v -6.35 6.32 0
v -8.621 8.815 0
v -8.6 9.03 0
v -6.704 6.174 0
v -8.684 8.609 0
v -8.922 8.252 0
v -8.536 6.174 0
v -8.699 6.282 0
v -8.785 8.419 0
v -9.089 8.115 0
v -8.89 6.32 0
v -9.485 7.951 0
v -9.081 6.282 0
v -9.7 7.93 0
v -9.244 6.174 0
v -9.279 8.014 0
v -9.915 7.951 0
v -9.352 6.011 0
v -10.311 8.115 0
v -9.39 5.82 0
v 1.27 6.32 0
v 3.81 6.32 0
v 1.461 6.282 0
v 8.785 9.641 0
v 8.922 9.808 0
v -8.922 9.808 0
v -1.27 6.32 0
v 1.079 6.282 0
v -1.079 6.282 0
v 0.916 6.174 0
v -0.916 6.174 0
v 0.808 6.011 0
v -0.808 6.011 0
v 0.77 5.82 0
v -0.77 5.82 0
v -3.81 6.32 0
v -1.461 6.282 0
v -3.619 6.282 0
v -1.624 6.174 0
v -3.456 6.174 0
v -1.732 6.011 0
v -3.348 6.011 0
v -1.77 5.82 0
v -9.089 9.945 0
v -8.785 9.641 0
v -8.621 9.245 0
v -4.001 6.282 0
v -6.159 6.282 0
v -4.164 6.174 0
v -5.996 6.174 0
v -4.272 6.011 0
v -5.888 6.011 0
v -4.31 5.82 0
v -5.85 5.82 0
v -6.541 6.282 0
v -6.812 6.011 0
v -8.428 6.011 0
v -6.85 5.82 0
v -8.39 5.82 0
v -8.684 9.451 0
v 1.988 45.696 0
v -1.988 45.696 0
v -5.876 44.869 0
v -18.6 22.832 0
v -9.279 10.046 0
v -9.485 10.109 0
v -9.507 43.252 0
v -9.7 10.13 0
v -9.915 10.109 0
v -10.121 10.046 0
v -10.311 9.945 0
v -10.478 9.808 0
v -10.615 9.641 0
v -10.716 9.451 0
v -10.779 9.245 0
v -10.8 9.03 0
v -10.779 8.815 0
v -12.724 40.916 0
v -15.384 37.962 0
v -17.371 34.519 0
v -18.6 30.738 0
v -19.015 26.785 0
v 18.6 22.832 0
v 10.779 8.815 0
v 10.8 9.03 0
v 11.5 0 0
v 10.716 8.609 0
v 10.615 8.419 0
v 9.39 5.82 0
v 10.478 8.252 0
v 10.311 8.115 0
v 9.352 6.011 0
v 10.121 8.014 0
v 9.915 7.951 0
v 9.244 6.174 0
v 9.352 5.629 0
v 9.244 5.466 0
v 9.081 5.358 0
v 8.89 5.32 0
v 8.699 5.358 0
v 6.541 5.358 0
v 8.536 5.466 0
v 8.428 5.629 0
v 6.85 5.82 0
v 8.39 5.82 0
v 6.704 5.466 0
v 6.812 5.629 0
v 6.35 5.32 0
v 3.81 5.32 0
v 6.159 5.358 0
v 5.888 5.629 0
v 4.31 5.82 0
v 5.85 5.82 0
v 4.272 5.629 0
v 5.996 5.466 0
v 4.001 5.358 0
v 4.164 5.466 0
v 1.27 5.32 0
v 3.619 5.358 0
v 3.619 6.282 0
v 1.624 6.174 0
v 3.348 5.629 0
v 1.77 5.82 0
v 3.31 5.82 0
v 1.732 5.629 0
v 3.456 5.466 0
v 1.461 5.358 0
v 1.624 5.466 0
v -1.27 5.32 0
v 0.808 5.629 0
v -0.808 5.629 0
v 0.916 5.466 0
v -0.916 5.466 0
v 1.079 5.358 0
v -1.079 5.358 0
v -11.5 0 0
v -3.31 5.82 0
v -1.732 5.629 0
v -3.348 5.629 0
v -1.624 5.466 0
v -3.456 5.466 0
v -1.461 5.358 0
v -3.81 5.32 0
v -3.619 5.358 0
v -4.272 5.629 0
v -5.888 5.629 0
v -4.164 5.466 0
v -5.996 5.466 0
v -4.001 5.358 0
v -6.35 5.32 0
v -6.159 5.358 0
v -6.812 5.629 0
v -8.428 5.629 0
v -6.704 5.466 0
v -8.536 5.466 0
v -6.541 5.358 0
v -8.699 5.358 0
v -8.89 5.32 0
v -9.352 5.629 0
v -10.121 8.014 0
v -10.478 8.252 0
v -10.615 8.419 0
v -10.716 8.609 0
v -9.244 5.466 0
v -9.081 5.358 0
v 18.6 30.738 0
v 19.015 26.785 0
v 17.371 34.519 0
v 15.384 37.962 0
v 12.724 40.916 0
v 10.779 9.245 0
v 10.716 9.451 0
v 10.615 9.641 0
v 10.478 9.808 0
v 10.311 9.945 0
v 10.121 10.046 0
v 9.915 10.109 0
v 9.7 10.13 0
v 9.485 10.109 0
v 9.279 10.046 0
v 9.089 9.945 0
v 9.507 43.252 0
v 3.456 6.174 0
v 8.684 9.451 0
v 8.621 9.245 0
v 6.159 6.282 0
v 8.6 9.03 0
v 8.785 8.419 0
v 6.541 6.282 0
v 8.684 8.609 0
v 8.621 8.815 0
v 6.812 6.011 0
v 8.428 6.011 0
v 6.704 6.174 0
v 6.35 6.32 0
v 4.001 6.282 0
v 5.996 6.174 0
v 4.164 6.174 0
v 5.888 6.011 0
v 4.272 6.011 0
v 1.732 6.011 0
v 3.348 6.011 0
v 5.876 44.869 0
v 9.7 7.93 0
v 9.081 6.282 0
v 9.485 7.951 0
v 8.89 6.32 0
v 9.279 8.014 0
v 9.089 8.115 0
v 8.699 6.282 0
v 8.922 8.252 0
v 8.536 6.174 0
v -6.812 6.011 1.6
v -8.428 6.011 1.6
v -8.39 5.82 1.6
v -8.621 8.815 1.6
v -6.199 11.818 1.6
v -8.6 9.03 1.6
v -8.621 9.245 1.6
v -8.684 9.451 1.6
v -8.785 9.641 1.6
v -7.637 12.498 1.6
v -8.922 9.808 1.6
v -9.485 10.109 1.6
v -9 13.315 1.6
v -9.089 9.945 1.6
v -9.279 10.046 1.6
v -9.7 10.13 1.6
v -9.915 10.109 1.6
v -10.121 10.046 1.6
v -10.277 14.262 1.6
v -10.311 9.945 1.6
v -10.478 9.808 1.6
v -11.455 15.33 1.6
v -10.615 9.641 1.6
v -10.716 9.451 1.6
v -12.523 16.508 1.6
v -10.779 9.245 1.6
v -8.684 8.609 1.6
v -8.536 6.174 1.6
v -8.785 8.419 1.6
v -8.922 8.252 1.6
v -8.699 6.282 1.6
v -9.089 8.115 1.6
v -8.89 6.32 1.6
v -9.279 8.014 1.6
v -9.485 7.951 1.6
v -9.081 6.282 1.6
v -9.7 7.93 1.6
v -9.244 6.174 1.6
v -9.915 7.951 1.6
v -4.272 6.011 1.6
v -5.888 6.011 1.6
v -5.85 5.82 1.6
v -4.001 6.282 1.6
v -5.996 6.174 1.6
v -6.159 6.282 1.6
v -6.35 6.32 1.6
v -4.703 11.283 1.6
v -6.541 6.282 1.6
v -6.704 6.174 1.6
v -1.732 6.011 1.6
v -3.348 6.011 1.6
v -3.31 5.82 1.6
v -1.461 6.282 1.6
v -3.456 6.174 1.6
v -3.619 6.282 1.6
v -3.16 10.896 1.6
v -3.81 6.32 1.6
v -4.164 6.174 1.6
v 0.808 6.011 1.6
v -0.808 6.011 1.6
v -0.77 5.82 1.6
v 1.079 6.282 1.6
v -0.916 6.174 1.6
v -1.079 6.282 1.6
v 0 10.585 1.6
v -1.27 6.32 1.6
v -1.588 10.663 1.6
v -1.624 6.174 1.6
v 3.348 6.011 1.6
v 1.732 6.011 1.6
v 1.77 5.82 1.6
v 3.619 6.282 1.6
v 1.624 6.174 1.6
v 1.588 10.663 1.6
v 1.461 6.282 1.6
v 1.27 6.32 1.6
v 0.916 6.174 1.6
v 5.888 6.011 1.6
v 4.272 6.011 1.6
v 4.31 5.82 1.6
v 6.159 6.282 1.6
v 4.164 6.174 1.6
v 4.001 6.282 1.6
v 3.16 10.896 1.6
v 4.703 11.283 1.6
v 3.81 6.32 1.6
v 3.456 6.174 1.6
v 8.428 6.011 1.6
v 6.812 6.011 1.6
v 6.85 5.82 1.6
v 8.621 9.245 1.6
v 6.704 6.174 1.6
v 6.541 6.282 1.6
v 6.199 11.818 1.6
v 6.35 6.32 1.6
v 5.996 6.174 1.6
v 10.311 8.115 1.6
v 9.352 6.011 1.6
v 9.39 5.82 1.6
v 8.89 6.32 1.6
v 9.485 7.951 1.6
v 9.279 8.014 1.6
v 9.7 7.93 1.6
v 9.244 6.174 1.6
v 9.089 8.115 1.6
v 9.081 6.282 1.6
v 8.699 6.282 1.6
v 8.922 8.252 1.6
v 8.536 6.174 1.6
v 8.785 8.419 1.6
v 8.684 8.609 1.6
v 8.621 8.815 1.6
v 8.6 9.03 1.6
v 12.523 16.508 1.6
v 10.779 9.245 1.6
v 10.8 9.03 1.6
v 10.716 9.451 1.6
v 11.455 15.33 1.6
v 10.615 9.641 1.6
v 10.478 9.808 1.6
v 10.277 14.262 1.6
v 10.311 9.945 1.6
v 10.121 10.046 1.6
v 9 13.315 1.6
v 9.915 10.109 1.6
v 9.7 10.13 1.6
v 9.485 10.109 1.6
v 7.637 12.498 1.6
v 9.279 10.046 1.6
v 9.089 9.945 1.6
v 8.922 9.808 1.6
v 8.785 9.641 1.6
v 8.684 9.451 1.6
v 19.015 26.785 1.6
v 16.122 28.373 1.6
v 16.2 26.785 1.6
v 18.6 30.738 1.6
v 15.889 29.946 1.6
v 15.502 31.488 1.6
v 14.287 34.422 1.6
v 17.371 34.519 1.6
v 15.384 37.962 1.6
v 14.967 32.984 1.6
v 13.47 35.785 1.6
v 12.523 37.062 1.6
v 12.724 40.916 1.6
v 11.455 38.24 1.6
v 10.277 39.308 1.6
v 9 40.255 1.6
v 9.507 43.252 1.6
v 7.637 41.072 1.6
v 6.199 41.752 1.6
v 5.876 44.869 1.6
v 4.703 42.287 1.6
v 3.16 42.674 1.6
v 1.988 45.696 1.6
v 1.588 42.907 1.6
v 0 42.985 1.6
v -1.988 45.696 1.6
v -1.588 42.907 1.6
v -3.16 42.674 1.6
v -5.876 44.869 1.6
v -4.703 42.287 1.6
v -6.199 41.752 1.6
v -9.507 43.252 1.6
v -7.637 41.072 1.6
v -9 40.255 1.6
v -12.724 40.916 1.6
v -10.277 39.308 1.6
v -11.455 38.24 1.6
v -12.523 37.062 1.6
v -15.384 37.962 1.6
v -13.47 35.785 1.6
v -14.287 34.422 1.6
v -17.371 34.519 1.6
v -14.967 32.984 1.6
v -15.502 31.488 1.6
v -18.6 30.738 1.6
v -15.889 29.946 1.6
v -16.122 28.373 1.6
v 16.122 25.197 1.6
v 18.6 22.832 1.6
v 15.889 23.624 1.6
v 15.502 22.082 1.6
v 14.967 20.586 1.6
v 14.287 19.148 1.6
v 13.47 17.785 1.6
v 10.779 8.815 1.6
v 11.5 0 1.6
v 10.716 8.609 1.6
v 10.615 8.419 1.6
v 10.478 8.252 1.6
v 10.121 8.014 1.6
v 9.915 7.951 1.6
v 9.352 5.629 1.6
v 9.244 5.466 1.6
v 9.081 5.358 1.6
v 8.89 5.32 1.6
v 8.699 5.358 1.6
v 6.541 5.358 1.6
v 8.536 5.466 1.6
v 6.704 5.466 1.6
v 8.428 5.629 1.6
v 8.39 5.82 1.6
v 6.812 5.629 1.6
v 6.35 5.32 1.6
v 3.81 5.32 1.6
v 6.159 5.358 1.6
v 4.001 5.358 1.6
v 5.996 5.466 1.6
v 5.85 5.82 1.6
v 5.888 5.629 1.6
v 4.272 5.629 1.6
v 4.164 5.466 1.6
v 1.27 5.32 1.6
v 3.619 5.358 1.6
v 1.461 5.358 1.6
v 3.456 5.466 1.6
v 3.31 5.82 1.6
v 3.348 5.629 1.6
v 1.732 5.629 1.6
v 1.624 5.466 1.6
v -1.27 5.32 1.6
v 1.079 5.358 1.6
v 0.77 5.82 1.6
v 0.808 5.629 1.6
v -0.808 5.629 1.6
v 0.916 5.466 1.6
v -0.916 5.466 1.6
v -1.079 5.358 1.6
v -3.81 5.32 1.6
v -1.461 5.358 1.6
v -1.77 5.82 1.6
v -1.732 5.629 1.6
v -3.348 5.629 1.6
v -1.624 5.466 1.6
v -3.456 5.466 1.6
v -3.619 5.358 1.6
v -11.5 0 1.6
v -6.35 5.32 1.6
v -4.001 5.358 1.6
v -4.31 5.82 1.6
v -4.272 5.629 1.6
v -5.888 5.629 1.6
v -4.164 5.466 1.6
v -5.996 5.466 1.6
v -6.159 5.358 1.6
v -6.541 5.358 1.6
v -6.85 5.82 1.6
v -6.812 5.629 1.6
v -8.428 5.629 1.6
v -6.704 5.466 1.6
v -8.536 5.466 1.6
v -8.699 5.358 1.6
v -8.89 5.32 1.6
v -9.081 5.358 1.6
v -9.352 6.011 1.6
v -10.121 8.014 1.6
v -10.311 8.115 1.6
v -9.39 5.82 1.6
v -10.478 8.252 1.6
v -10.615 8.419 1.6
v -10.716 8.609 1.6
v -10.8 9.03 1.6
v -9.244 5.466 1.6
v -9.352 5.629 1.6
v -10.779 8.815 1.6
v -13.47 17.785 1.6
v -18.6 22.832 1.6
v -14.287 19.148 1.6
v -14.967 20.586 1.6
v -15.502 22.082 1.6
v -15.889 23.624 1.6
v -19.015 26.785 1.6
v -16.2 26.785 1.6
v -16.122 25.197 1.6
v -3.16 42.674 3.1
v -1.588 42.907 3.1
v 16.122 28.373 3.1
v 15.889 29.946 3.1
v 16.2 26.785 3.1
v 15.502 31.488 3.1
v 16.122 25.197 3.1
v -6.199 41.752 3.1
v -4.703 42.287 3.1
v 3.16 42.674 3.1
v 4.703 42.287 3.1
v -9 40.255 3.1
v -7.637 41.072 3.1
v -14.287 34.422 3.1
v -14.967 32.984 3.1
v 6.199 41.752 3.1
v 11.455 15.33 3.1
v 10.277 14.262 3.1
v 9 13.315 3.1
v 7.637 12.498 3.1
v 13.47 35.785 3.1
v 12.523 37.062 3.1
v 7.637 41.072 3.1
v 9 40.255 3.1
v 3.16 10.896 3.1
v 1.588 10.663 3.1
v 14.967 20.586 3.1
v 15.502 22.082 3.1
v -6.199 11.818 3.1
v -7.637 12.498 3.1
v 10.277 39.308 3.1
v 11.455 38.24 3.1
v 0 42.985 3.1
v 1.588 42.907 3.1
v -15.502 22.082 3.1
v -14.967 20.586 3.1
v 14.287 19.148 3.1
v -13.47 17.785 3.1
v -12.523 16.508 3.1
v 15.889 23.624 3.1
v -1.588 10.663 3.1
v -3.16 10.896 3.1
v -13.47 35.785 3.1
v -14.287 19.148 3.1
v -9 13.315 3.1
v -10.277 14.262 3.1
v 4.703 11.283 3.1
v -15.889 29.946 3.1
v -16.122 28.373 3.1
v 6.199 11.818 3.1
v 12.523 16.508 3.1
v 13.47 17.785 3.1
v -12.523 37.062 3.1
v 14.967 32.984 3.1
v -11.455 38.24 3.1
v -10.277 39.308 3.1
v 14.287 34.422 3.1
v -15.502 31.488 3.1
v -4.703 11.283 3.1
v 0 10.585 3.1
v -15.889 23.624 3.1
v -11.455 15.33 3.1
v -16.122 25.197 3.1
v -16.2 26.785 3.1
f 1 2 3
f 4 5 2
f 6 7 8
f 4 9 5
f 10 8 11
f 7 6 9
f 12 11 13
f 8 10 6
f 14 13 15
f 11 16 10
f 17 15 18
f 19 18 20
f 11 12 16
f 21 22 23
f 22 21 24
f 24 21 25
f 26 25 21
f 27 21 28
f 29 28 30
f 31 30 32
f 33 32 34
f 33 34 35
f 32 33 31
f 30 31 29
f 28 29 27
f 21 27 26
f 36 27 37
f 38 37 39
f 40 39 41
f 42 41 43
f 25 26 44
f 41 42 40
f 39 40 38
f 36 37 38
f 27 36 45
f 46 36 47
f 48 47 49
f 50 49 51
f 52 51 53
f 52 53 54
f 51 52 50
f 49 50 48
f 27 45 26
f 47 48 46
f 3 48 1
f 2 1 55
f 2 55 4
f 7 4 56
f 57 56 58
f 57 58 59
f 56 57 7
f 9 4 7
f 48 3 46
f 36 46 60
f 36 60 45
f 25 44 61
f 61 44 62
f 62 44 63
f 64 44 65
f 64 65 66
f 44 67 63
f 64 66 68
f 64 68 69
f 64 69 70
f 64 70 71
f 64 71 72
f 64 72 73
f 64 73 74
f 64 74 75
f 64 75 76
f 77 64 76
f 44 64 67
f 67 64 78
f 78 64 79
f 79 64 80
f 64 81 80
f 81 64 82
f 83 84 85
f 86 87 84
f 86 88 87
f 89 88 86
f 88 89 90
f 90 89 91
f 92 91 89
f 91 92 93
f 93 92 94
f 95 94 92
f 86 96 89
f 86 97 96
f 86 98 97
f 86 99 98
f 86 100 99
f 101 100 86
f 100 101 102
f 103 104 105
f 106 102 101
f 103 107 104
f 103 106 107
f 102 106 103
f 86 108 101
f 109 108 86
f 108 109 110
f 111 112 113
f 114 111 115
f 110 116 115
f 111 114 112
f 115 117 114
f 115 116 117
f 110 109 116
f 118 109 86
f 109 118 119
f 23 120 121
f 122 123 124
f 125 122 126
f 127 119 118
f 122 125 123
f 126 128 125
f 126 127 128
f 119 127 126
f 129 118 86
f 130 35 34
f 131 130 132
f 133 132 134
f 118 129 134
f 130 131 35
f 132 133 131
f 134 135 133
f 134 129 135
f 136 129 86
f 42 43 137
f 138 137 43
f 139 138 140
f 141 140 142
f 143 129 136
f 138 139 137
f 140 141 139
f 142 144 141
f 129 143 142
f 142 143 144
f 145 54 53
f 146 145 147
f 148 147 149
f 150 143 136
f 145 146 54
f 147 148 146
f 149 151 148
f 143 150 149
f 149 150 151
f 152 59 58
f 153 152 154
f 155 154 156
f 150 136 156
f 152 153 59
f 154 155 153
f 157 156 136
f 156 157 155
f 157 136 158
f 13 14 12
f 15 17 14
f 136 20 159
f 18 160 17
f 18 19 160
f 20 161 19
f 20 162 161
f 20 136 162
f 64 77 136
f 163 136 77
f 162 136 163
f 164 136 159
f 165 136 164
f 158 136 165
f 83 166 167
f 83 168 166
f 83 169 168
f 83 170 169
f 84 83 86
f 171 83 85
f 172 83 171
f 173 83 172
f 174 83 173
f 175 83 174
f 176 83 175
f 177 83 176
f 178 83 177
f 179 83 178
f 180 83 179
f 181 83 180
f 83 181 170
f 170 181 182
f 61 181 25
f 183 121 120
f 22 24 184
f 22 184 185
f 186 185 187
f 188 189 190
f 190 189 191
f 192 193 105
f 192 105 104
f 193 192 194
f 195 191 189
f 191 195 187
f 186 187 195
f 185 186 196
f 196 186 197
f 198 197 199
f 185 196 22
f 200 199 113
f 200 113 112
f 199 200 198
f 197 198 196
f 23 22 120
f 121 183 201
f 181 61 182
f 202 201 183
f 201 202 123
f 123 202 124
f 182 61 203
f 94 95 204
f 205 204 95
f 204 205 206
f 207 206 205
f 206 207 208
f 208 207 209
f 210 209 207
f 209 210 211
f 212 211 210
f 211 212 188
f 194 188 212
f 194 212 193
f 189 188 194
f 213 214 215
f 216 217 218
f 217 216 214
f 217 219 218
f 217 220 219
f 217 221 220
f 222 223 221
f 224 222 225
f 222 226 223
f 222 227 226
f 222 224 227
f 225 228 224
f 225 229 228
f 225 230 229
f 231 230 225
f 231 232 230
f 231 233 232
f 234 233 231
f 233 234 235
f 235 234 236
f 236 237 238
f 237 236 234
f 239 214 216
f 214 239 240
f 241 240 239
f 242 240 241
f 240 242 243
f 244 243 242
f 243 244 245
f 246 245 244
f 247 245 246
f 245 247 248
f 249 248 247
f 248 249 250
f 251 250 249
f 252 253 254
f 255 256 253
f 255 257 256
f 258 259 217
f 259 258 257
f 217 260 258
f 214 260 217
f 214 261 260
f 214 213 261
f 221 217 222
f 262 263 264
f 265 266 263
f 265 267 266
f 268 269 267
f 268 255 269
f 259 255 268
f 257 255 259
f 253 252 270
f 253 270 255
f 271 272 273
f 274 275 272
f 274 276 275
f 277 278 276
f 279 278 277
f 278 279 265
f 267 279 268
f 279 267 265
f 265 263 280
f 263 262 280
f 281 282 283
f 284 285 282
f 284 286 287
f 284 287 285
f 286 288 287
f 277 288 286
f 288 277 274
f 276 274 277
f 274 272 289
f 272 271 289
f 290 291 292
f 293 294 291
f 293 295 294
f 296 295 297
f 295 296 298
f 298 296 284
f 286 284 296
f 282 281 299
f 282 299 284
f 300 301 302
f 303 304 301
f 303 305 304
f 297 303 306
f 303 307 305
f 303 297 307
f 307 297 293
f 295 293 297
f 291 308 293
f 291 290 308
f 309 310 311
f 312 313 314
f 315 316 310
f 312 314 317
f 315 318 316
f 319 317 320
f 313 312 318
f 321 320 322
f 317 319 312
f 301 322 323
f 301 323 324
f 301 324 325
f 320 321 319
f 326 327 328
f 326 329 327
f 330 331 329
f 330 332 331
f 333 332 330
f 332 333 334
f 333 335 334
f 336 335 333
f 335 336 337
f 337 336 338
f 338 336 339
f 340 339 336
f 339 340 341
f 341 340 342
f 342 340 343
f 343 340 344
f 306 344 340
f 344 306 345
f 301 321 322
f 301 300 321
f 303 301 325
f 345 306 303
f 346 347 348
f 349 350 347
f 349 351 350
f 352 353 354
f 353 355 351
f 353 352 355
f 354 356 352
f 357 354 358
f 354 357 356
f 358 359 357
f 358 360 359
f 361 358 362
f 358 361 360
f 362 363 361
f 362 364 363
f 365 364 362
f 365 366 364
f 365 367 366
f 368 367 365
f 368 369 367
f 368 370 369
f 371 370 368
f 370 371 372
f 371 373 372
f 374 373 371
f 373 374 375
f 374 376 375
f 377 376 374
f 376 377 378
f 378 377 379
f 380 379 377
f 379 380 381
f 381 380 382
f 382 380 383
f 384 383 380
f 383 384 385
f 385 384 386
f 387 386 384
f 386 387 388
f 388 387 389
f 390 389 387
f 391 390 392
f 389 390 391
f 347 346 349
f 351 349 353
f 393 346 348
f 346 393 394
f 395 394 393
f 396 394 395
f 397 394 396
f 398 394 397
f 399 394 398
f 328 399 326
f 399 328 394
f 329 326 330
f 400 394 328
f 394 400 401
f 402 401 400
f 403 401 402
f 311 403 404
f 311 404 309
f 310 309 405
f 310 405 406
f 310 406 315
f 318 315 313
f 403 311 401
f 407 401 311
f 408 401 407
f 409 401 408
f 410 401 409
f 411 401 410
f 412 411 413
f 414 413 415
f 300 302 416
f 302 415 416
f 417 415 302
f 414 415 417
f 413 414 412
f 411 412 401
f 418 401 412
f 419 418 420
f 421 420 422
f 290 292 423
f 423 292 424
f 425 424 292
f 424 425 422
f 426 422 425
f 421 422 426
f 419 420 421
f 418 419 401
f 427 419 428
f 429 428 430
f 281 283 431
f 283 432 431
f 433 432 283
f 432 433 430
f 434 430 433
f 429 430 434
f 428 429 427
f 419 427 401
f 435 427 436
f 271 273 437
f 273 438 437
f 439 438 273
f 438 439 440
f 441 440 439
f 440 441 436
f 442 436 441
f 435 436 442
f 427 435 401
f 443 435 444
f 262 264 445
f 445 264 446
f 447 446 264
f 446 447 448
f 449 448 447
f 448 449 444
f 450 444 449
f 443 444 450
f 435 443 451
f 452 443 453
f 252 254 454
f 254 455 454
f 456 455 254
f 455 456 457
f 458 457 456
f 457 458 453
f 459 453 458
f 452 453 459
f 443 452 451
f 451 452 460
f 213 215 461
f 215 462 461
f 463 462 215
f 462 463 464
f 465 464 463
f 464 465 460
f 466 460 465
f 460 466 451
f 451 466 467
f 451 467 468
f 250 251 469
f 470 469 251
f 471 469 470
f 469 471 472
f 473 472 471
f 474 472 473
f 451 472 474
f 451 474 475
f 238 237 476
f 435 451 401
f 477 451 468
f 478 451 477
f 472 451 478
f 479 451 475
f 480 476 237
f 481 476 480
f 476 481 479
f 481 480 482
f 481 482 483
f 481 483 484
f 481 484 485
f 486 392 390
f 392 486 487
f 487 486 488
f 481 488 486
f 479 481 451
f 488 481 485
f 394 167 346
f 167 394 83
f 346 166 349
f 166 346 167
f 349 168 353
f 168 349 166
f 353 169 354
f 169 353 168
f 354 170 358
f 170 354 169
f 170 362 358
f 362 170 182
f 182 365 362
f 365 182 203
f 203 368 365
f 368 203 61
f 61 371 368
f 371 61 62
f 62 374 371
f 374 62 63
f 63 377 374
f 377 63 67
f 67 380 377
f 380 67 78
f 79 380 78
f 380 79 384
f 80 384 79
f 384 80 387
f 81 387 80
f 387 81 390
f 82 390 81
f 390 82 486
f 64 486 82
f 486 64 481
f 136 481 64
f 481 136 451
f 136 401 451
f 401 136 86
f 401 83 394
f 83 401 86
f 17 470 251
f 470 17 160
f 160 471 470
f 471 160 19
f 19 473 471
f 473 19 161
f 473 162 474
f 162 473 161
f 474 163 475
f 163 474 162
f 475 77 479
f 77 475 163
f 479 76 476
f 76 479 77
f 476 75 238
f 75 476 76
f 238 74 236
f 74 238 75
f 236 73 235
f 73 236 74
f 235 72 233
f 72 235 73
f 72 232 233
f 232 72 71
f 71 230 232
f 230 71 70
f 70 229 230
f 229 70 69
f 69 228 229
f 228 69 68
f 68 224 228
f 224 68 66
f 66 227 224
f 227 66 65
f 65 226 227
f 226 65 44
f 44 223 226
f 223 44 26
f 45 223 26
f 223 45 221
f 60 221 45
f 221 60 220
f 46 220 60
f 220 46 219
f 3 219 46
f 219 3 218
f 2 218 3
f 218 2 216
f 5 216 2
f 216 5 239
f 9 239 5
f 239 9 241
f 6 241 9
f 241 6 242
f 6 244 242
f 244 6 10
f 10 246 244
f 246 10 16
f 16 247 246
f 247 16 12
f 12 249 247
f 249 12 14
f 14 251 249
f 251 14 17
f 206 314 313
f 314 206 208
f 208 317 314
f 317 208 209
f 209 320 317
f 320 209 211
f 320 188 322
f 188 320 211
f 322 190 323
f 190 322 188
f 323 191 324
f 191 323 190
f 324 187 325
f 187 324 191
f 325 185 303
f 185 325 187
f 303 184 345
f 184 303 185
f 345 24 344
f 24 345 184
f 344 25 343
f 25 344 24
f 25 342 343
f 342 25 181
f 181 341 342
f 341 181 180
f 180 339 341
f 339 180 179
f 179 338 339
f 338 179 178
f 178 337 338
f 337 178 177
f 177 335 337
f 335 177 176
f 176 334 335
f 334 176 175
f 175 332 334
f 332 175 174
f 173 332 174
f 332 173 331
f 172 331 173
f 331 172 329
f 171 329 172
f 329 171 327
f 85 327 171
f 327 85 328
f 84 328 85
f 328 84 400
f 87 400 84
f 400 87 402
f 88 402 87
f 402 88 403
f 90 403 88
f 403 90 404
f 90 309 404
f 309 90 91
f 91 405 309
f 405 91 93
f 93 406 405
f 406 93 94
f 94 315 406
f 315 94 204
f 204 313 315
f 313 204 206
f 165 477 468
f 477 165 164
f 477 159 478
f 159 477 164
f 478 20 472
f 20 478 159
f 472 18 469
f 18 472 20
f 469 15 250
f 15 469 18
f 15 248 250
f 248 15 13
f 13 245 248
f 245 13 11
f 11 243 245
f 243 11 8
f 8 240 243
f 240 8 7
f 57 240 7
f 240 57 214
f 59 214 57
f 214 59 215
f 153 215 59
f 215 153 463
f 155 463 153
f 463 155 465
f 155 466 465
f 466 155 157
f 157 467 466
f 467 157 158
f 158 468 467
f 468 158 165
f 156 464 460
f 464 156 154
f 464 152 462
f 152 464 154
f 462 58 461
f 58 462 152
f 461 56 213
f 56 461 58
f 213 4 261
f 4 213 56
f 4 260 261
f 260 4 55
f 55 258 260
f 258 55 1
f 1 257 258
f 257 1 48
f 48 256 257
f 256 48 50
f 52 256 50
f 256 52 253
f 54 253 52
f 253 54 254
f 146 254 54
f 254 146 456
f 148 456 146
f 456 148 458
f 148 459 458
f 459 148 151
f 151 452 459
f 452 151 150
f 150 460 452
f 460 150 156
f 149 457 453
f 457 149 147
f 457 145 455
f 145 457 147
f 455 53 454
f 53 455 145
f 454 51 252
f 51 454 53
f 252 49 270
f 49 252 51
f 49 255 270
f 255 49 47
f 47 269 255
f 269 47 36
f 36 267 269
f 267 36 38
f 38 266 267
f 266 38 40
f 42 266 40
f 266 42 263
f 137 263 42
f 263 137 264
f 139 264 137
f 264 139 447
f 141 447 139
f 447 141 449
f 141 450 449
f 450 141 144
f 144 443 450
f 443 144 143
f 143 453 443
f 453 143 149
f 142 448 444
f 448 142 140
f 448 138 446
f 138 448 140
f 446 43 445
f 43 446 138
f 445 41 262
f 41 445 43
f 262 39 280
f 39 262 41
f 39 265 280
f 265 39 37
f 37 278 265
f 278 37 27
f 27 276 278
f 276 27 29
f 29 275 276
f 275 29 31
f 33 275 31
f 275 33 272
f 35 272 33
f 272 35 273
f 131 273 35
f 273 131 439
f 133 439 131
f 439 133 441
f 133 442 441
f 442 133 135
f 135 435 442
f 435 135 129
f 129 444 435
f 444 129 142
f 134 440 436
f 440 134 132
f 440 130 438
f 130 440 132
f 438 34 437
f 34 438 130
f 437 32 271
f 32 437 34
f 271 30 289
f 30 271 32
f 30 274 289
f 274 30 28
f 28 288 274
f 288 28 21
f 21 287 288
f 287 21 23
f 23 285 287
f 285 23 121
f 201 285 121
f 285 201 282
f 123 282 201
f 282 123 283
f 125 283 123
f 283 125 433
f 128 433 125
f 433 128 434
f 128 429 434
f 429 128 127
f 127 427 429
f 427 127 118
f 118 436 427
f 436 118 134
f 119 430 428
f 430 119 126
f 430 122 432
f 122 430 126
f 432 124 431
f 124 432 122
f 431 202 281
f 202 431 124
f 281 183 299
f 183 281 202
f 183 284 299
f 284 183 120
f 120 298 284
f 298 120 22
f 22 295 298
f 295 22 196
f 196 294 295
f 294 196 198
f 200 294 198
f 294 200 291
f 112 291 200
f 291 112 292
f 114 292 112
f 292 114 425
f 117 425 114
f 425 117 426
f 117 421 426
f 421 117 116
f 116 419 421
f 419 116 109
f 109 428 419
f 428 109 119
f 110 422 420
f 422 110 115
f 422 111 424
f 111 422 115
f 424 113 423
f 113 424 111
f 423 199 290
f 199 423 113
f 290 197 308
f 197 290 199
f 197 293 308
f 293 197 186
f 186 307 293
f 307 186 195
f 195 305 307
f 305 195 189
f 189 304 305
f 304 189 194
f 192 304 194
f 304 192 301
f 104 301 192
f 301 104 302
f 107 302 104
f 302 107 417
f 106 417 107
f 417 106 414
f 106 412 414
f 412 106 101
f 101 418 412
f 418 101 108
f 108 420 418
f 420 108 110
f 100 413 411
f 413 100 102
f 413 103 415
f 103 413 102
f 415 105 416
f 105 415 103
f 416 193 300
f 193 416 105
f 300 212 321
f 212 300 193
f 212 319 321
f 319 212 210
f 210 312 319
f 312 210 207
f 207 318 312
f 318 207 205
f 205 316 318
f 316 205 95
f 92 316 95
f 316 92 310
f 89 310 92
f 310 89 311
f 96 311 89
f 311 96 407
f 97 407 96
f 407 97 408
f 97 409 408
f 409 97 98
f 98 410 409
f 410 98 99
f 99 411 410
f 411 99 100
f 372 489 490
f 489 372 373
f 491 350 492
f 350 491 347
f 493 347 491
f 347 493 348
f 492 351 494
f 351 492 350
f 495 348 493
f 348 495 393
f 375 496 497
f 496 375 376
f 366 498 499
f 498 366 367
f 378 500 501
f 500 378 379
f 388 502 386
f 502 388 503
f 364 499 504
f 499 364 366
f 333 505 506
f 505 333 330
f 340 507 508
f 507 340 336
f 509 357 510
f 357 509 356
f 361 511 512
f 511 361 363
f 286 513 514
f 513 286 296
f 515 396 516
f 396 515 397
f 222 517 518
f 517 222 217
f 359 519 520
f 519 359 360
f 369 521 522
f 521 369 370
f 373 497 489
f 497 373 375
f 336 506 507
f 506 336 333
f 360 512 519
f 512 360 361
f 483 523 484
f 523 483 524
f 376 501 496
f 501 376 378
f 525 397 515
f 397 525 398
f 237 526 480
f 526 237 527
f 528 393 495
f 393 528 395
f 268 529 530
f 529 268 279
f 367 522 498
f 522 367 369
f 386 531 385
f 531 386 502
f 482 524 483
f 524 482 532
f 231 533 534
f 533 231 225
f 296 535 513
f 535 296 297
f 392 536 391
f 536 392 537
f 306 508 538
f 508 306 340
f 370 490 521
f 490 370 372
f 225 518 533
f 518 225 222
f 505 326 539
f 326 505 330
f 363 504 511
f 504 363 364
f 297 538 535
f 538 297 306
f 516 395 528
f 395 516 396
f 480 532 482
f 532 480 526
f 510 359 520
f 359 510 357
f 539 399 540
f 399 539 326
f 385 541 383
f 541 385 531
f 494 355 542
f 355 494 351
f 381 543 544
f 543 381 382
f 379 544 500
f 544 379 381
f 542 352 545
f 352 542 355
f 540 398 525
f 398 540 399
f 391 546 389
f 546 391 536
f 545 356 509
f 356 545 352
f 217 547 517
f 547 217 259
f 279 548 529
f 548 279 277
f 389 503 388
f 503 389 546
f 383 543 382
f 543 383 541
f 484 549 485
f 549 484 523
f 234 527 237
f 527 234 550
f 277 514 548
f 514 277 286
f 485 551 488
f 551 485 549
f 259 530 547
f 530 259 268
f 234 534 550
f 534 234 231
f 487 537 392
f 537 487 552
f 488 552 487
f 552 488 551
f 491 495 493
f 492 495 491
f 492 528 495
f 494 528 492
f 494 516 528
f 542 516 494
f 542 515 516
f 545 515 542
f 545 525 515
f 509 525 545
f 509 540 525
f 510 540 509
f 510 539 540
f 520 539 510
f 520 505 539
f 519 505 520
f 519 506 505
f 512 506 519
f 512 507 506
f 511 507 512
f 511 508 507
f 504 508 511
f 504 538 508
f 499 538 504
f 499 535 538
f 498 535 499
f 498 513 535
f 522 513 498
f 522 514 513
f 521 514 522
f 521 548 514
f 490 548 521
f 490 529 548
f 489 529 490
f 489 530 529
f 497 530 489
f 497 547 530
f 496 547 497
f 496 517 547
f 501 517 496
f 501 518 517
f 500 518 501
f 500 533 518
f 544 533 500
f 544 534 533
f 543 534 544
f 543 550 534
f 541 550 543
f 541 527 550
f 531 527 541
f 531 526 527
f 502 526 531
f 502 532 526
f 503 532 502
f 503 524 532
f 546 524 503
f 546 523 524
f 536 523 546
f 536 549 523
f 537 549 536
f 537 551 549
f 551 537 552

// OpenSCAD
// GC9A01 Round LCD Module Model
// All dimensions are in millimeters, based on the provided datasheet image.

// --- Parameters ---

// PCB Main Body
pcb_thickness = 1.6;
pcb_diameter = 38.03;
pcb_total_height = 45.80;

// LCD Display
lcd_aa_diameter = 32.40; // Active Area
lcd_thickness = 1.50;

// Bottom Rectangular Part
rect_pcb_width = 23.00;
rect_pcb_height = 11.64;
hole_spacing = 19.40;
hole_diameter = 2.2; // M2 screw is a common size for this
pin_header_y_offset = 5.82; // y-position from the bottom edge

// Pin Header
pin_count = 8;
pin_pitch = 2.54;
pin_size = [0.6, 0.6, 11.78]; // Square pin dimensions [x, y, z]

// --- Calculations ---
pcb_radius = pcb_diameter / 2;
// Y-coordinate for the center of the circle, so the total height is correct.
circle_y_center = pcb_total_height - pcb_radius;


// --- Modules ---

// Module for the main PCB shape
module pcb_base() {
    // Use hull() to create straight lines connecting the two shapes.
    // Their positions are corrected to overlap for a better connection.
    hull() {
        // Top circular part
        translate([0, circle_y_center, 0])
            circle(d = pcb_diameter);

        // Bottom rectangular part
        translate([-rect_pcb_width/2, 0, 0])
            square([rect_pcb_width, rect_pcb_height]);
    }
}

// Module for the pin headers
module pin_headers() {
    total_pin_width = (pin_count - 1) * pin_pitch;
    for (i = [0:pin_count-1]) {
        translate([-total_pin_width/2 + i * pin_pitch, pin_header_y_offset, pcb_thickness])
            cube(pin_size, center=true);
    }
}

// Module for the pin header holes
module pin_header_holes() {
    pin_hole_diameter = 1.0; // Standard size for pin header holes
    total_pin_width = (pin_count - 1) * pin_pitch;
    for (i = [0:pin_count-1]) {
        translate([-total_pin_width/2 + i * pin_pitch, pin_header_y_offset, 0])
            circle(d=pin_hole_diameter, $fn=16);
    }
}


// --- Assembly ---

// Create the final 3D model
union() {
    // 1. Main PCB board
    linear_extrude(height = pcb_thickness) {
        difference() {
            pcb_base();
            
            // Mounting holes
            translate([-hole_spacing/2, rect_pcb_height - 2.61, 0])
                circle(d=hole_diameter, $fn=32);
            translate([hole_spacing/2, rect_pcb_height - 2.61, 0])
                circle(d=hole_diameter, $fn=32);
            
            // Pin header holes
            pin_header_holes();
        }
    }
    
    // 2. LCD Screen representation
    translate([0, circle_y_center, pcb_thickness]) {
        cylinder(d=lcd_aa_diameter, h=lcd_thickness, $fn=64, center=false);
    }

    // 3. Pin Headers
    // pin_headers();
}

// Example of how to view the model
// Just the PCB without components
// linear_extrude(height = pcb_thickness) pcb_base();
